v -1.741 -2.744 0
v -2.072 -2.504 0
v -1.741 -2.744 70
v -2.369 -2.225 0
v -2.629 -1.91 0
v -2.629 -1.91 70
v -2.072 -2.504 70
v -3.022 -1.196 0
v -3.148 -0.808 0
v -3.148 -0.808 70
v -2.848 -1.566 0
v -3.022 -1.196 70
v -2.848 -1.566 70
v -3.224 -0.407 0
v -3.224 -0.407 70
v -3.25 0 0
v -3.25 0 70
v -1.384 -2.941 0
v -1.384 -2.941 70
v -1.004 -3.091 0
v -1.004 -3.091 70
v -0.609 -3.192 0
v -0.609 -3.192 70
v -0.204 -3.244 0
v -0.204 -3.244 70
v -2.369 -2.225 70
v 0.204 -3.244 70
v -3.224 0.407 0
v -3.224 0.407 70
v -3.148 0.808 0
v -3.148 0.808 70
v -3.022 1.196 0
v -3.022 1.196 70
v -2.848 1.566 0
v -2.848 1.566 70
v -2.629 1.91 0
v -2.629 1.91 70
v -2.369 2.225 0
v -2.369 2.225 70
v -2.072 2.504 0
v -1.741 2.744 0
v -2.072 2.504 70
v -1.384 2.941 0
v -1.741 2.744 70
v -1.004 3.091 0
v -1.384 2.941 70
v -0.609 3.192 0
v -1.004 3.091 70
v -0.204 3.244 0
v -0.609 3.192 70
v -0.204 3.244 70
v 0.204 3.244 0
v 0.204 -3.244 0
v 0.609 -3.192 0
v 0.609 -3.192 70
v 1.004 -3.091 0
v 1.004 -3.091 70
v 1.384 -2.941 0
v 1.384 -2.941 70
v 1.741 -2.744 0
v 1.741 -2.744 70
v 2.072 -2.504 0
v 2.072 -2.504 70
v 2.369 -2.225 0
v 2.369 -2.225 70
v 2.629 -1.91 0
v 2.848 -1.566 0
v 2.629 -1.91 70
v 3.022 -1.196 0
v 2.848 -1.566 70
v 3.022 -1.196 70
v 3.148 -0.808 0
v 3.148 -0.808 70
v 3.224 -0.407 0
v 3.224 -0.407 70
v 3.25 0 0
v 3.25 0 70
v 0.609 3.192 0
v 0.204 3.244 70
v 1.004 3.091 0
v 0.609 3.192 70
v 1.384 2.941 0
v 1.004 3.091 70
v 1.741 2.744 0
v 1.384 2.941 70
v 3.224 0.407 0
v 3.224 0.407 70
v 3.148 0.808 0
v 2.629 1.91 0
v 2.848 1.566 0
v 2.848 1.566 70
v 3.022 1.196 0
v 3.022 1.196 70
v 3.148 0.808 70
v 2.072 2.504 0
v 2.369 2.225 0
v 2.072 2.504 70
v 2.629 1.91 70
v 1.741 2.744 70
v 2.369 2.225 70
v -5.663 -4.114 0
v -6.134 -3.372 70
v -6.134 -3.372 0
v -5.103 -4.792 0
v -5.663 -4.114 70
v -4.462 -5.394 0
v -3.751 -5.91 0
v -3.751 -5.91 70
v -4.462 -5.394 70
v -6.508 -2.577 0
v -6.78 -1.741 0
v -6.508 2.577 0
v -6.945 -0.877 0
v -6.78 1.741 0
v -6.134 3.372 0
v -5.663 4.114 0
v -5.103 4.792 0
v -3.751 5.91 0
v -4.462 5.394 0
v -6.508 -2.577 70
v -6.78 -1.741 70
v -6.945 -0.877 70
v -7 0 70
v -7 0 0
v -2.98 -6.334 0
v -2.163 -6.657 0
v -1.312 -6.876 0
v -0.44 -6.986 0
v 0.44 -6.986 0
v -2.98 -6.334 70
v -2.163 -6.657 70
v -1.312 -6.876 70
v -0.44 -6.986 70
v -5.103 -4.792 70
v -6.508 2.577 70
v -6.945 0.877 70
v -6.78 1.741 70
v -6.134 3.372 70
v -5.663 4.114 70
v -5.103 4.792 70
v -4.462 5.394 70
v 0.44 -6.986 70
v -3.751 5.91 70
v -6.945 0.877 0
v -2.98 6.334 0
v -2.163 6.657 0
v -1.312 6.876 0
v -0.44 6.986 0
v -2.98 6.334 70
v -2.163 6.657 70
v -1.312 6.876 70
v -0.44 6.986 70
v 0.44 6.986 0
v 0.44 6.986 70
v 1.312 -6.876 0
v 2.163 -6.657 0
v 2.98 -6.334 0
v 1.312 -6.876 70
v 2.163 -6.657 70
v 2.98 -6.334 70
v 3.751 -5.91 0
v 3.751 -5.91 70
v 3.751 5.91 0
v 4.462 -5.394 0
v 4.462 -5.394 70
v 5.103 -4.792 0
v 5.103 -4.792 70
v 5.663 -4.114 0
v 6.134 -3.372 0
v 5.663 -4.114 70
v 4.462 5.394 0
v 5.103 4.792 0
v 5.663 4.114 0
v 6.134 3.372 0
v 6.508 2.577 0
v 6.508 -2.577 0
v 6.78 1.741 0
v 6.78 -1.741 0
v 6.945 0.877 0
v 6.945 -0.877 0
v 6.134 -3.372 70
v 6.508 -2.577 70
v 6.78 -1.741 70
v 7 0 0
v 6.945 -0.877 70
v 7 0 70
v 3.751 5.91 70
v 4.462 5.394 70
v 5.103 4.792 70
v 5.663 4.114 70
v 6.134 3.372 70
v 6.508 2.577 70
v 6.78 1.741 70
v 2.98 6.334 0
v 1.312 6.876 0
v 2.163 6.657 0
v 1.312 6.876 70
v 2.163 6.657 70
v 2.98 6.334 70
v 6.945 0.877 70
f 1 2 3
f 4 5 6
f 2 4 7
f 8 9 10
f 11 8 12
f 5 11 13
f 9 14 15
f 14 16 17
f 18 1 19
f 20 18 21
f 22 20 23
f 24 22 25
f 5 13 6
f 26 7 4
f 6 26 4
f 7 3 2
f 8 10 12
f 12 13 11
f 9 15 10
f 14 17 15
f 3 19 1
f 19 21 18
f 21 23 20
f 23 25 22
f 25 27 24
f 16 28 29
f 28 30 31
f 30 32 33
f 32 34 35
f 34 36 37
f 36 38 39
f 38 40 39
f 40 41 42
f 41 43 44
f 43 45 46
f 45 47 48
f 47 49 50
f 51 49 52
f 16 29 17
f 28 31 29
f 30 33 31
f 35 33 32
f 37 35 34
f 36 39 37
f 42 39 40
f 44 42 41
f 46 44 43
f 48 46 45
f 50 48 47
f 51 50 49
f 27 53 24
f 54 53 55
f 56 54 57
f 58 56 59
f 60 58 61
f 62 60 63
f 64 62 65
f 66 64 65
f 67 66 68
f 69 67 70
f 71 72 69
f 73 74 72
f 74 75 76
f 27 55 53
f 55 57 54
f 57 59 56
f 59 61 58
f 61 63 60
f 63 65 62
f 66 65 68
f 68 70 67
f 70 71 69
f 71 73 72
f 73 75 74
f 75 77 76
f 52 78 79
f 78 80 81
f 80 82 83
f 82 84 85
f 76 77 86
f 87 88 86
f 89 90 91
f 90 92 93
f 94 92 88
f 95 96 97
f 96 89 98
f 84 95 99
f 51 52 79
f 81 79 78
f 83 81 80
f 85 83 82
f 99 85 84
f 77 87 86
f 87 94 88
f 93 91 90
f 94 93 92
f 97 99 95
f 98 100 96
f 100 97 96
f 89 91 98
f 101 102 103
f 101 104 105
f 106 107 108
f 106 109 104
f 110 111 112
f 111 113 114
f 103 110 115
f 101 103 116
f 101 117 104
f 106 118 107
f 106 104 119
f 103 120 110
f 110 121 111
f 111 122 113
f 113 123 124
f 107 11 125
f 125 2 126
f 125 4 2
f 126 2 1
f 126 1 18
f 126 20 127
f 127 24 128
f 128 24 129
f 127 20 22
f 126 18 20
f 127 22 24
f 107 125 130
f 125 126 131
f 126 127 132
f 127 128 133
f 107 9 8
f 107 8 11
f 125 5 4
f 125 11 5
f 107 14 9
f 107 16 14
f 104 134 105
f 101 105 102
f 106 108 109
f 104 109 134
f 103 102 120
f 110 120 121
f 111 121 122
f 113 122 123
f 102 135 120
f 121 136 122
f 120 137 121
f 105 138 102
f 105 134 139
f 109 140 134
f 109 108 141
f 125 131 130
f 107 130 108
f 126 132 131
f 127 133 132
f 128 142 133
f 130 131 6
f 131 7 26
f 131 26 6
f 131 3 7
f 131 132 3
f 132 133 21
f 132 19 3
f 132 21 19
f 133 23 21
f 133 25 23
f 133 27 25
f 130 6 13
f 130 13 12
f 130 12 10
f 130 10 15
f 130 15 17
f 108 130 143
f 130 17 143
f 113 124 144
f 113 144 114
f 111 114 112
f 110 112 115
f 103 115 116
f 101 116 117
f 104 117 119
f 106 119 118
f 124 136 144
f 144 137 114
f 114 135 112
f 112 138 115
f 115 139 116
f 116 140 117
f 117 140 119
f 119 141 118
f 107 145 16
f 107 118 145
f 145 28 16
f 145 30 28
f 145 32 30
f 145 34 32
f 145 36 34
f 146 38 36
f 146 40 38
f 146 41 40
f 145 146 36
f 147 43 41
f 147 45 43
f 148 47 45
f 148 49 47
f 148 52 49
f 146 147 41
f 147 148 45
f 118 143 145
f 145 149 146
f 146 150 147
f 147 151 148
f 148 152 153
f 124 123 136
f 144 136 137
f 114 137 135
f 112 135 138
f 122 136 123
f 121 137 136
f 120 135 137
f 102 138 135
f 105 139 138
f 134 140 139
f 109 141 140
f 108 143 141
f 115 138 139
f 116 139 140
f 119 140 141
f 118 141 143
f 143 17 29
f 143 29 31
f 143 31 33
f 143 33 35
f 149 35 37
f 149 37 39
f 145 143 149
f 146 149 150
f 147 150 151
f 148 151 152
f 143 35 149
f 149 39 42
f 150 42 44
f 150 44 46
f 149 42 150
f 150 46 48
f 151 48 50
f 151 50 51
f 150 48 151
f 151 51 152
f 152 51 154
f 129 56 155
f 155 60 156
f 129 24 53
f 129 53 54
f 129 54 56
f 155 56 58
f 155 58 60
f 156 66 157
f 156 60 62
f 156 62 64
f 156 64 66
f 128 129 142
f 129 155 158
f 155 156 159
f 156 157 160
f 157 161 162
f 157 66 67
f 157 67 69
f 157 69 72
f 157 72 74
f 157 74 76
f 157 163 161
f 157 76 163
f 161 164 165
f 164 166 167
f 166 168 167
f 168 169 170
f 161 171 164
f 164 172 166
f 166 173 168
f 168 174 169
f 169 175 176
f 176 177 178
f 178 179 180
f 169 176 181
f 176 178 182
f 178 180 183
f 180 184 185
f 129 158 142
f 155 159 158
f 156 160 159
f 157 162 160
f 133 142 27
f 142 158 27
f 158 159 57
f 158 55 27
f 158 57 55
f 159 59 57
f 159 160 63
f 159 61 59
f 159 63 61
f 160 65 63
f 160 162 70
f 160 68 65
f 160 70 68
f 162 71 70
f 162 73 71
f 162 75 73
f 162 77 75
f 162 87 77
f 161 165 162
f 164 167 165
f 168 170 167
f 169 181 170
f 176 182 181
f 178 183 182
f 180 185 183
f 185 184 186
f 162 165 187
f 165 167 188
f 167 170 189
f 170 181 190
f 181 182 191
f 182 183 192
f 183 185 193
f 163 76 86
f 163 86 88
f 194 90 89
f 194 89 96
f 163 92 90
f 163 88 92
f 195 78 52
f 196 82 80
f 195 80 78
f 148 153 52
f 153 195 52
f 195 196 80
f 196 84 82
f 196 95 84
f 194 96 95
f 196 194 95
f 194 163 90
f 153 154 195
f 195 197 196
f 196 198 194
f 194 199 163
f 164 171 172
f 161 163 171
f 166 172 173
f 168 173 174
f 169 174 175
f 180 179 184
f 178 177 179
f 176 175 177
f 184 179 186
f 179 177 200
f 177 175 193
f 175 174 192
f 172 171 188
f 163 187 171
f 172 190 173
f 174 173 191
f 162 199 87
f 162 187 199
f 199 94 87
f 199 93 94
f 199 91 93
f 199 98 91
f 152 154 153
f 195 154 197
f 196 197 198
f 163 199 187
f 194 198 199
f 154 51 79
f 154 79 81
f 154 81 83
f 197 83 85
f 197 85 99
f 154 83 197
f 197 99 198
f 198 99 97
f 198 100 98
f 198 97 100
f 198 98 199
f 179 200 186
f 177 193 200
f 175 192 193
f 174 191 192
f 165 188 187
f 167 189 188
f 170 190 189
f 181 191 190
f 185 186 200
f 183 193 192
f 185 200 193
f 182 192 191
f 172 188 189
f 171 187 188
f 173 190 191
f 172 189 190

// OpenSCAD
$fn = 50;

difference() {
	union() {
		cylinder(h = 70, r = 7.0);
	}
	union() {
		cylinder(h = 70, r = 3.25);
		cylinder(h = 70, r = 1.8);
	}
}
